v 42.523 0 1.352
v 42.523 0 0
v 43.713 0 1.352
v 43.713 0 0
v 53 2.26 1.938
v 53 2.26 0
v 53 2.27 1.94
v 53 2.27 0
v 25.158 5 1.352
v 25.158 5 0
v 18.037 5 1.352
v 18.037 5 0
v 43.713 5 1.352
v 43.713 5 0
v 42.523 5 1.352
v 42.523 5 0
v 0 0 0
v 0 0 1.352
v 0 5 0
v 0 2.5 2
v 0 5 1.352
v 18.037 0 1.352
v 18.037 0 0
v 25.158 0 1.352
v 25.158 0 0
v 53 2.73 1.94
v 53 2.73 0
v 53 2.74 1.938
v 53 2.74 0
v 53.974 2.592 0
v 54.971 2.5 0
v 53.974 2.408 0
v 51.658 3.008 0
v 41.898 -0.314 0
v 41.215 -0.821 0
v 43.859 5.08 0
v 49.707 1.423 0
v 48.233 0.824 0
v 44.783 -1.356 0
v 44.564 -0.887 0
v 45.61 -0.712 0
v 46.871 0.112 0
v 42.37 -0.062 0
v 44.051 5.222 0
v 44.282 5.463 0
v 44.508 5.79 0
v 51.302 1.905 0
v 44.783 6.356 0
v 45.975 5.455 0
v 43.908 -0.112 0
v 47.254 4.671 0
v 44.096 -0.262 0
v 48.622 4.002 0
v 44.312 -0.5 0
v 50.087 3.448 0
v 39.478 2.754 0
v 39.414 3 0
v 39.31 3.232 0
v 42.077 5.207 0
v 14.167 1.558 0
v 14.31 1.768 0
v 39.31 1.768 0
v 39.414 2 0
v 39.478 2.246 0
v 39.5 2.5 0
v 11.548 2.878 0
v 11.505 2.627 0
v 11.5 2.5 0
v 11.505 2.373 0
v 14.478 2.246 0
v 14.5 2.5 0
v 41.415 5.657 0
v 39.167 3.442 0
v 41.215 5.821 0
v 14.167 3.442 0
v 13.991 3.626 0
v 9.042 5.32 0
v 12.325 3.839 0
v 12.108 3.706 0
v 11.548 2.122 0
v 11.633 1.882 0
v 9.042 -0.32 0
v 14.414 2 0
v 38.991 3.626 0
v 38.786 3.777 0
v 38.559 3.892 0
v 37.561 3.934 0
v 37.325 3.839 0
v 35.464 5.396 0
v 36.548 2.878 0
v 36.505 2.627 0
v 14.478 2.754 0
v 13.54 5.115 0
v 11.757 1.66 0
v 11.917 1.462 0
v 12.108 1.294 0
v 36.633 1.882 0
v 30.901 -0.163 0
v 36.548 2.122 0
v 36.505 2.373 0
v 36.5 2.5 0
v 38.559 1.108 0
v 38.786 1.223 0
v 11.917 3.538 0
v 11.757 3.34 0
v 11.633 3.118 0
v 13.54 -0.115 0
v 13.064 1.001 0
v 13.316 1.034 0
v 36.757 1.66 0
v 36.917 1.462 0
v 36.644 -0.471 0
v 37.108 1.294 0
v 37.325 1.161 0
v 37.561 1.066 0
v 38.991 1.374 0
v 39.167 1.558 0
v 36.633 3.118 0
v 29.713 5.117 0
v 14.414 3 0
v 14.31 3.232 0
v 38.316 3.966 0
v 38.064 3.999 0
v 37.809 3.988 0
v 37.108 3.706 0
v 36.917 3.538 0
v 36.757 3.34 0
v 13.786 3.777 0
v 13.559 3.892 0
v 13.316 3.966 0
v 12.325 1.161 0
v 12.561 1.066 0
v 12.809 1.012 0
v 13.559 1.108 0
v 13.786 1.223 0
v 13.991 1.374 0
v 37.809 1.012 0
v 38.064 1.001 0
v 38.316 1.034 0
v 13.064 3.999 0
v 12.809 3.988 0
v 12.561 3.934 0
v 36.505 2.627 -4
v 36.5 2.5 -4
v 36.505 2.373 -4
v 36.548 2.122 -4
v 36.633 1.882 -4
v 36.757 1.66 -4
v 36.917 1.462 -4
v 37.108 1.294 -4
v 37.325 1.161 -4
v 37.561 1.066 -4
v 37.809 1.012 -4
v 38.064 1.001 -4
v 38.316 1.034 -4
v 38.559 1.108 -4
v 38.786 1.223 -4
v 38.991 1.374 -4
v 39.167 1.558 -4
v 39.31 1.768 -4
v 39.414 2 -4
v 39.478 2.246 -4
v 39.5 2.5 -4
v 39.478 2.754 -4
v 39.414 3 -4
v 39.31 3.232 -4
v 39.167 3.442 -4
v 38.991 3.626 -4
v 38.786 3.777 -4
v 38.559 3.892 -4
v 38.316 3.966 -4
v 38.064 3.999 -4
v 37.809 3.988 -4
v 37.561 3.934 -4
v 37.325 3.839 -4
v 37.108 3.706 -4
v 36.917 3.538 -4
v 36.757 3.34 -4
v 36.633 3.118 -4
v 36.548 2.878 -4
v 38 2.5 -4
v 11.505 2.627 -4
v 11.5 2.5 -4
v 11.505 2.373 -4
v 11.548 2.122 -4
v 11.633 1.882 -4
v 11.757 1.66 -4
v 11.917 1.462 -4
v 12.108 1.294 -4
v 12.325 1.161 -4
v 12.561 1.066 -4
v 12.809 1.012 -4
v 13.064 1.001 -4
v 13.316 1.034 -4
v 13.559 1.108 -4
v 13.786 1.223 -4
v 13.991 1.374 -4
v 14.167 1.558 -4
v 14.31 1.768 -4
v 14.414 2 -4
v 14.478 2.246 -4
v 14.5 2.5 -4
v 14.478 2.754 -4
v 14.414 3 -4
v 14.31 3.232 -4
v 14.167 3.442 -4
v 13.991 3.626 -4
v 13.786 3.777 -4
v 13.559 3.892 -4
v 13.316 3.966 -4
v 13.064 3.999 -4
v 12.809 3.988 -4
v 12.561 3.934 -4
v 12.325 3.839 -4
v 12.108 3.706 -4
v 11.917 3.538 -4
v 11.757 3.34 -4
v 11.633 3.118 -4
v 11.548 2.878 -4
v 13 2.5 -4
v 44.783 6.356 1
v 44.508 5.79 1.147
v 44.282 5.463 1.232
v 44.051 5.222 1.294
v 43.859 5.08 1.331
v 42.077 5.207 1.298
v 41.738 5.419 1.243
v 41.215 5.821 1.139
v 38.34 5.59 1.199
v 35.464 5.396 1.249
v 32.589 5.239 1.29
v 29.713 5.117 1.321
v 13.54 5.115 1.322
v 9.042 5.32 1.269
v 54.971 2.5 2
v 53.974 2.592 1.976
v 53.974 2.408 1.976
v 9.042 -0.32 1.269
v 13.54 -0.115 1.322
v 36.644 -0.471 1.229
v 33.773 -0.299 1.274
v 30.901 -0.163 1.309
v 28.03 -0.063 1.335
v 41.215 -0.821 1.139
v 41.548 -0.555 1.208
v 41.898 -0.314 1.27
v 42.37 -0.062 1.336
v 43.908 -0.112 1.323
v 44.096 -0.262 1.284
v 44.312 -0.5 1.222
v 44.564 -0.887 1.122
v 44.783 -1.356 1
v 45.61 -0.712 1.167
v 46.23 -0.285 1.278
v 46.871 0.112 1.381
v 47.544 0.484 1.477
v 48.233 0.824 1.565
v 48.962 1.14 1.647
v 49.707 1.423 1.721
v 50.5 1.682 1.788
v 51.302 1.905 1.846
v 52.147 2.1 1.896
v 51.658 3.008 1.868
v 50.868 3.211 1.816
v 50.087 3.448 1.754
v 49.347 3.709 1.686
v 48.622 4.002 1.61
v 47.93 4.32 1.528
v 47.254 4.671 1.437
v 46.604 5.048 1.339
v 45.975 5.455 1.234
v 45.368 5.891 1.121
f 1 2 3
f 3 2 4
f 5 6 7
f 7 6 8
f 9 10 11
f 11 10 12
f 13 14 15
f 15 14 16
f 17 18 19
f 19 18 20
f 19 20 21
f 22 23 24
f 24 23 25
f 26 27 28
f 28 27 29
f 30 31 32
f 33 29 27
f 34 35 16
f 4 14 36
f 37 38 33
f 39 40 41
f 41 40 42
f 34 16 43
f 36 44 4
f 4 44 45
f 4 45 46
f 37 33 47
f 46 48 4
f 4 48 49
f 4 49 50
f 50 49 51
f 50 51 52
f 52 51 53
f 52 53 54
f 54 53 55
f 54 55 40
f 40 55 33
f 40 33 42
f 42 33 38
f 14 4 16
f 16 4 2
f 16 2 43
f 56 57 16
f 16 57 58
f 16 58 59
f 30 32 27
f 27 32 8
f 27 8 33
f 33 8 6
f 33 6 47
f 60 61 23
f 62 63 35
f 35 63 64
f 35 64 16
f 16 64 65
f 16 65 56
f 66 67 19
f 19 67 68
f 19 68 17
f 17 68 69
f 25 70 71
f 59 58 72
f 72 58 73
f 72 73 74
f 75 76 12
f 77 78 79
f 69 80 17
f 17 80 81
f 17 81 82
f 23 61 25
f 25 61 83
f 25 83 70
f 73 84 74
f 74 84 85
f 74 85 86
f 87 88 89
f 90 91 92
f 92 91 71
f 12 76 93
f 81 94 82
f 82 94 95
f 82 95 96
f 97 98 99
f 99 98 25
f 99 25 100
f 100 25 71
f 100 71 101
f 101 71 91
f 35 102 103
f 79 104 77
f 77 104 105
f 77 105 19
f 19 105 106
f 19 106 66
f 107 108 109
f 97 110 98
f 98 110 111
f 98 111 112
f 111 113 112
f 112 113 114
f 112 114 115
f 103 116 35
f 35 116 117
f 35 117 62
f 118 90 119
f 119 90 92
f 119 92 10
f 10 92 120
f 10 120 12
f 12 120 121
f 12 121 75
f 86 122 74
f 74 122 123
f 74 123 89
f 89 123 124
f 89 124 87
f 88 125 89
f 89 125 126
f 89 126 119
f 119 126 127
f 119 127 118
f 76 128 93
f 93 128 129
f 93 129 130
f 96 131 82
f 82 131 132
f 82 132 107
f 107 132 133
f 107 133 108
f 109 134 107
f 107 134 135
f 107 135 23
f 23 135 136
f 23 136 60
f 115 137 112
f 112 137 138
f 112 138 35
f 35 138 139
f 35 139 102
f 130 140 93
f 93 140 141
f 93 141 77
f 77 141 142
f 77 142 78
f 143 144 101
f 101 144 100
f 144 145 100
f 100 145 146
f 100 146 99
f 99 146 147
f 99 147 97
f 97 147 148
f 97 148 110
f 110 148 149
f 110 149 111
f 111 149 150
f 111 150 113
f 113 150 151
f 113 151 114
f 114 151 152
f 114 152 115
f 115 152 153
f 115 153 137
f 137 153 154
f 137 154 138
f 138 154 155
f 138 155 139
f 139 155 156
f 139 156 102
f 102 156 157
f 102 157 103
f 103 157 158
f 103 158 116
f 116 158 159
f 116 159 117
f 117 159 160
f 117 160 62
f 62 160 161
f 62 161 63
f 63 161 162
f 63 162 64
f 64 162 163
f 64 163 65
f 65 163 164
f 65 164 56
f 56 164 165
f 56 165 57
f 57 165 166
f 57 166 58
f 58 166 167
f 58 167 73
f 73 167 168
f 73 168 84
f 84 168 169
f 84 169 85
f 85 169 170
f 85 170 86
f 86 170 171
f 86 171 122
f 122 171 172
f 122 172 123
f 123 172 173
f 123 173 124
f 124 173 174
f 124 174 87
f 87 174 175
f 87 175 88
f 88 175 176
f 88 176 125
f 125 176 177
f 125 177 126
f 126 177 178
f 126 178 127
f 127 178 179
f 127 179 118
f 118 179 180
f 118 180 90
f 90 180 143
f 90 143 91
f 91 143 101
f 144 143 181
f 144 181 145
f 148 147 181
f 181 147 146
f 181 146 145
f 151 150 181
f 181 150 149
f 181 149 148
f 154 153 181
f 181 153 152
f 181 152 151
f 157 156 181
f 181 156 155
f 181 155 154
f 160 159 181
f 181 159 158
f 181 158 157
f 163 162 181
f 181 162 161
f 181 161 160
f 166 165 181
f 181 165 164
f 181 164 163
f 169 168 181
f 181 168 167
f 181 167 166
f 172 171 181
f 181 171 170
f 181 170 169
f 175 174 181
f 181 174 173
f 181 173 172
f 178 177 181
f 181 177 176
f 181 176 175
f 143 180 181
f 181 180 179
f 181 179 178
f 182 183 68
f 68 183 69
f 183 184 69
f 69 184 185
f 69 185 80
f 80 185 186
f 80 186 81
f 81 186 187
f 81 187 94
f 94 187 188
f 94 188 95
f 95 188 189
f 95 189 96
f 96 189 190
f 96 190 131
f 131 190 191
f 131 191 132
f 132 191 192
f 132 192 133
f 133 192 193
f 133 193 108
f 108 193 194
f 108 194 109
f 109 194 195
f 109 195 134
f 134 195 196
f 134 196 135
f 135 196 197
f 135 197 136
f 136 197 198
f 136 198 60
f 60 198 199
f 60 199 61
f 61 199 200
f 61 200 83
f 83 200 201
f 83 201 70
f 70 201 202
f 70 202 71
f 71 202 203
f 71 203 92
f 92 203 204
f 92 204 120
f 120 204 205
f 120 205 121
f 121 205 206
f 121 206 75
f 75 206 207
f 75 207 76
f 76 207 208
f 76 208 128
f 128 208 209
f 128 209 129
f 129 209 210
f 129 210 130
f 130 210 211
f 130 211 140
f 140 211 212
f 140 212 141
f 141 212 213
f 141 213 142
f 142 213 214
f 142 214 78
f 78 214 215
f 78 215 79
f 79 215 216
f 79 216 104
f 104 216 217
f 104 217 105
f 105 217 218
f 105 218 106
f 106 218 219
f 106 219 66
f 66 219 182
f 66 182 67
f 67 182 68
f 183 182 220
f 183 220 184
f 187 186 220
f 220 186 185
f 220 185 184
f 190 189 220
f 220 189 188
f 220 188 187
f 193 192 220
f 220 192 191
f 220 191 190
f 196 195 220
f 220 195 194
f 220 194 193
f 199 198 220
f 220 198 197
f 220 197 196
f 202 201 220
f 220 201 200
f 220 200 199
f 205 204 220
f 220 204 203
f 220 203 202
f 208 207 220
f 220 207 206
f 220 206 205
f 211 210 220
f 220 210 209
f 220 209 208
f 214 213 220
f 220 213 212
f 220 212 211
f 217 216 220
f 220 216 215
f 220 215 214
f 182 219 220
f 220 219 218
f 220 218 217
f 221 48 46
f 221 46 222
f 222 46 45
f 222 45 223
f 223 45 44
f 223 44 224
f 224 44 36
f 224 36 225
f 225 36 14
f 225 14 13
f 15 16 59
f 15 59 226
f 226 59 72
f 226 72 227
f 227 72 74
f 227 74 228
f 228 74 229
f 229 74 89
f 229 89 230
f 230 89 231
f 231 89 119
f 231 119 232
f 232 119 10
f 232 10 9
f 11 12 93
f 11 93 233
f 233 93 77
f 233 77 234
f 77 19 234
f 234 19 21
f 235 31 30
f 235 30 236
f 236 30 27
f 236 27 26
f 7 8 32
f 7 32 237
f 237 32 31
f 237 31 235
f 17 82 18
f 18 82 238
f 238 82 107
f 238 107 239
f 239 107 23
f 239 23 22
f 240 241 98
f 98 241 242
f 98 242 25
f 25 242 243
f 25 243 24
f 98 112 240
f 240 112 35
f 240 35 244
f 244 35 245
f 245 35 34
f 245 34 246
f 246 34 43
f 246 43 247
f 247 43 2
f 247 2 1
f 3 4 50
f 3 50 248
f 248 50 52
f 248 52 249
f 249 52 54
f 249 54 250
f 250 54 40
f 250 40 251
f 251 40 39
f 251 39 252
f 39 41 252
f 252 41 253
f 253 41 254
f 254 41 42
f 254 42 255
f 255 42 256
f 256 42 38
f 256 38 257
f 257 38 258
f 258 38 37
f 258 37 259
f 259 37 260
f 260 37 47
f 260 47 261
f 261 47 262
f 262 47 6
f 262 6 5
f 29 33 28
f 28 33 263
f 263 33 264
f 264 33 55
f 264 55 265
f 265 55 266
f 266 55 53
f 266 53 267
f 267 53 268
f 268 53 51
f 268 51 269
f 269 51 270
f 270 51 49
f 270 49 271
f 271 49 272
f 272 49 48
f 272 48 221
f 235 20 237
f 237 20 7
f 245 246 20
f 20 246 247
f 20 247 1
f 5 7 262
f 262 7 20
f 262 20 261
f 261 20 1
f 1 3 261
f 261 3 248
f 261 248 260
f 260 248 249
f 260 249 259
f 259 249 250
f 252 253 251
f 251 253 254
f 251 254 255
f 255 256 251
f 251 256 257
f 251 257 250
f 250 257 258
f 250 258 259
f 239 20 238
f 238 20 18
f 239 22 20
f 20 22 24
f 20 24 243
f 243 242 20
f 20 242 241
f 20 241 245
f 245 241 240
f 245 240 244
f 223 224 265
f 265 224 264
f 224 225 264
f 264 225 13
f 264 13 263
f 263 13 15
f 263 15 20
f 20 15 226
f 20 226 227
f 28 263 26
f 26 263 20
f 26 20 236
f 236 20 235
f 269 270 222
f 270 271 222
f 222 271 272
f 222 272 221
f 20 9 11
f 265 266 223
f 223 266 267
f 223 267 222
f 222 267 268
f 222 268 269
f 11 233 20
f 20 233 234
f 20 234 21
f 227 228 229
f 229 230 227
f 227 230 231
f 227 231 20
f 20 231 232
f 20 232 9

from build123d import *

# Parameters (mm, degrees)
SKIZZE1_W                       = 53
SKIZZE1_H                       = 5
AUFSATZ_LINEAR_AUSTRAGEN1_DEPTH = 2
SKIZZE2_R                       = 1.5
AUFSATZ_LINEAR_AUSTRAGEN2_DEPTH = 4
AUFSATZ_LINEAR_AUSTRAGEN3_DEPTH = 2
SCHNITT_LINEAR_AUSTRAGEN1_DEPTH = 2
SCHNITT_LINEAR_AUSTRAGEN2_DEPTH = 62


with BuildPart() as part:
    # Skizze1 → Aufsatz-Linear austragen1 (new body)
    with BuildSketch(Plane.XY):
        with Locations((26.5, 2.5)):
            Rectangle(SKIZZE1_W, SKIZZE1_H)
    extrude(amount=AUFSATZ_LINEAR_AUSTRAGEN1_DEPTH)

    # Skizze2 → Aufsatz-Linear austragen2 (add)
    with BuildSketch(Plane(origin=(0, 0, 0), x_dir=(-1, 0, 0), z_dir=(0, 0, -1))):
        with Locations((-38, 2.5)):
            Circle(SKIZZE2_R)
        with Locations((-13, 2.5)):
            Circle(SKIZZE2_R)
    extrude(amount=AUFSATZ_LINEAR_AUSTRAGEN2_DEPTH)

    # Skizze3 → Aufsatz-Linear austragen3 (add)
    with BuildSketch(Plane.XY.offset(2)):
        with BuildLine():
            Line((9.041652249, 5.319771497), (0, 5))
            Line((0, 5), (0, 0))
            Line((0, 0), (9.041652249, -0.319771497))
            add(Edge.make_bspline(
                [(41.214812909, -0.82086692), (25.128158575, 0.571238551), (9.041652249, -0.319771497)],
                knots=[0, 0, 0, 1, 1, 1], degree=2))
            add(Edge.make_bspline(
                [(44.782995012, -1.356094236), (43.718693427, 1.301548712), (41.214812909, -0.82086692)],
                knots=[0, 0, 0, 1, 1, 1], degree=2))
            add(Edge.make_bspline(
                [(54.97075372, 2.5), (49.140580599, 2.096719237), (44.782995012, -1.356094236)],
                knots=[0, 0, 0, 1, 1, 1], degree=2))
            add(Edge.make_bspline(
                [(54.97075372, 2.5), (49.140580599, 2.903280763), (44.782995012, 6.356094236)],
                knots=[0, 0, 0, 1, 1, 1], degree=2))
            add(Edge.make_bspline(
                [(44.782995012, 6.356094236), (43.718693427, 3.698451288), (41.214812909, 5.82086692)],
                knots=[0, 0, 0, 1, 1, 1], degree=2))
            add(Edge.make_bspline(
                [(41.214812909, 5.82086692), (25.128158575, 4.428761449), (9.041652249, 5.319771497)],
                knots=[0, 0, 0, 1, 1, 1], degree=2))
        make_face()
    extrude(amount=-AUFSATZ_LINEAR_AUSTRAGEN3_DEPTH)

    # Skizze4 → Schnitt-Linear austragen1 (cut)
    with BuildSketch(Plane.XY.offset(2)):
        with BuildLine():
            Line((44.782995012, -1.356094236), (55.574942563, -1.356094236))
            Line((55.574942563, -1.356094236), (55.574942563, 6.356094236))
            Line((55.574942563, 6.356094236), (44.782995012, 6.356094236))
            add(Edge.make_bspline(
                [(44.782995012, 6.356094236), (48.809965084, 2.992691468), (54.97075372, 2.5)],
                knots=[0, 0, 0, 1, 1, 1], degree=2))
            add(Edge.make_bspline(
                [(44.782995012, -1.356094236), (48.809965084, 2.007308532), (54.97075372, 2.5)],
                knots=[0, 0, 0, 1, 1, 1], degree=2))
        make_face()
    extrude(amount=-SCHNITT_LINEAR_AUSTRAGEN1_DEPTH, mode=Mode.SUBTRACT)

    # Skizze5 → Schnitt-Linear austragen2 (cut)
    with BuildSketch(Plane.ZY):
        Polygon((1, 6.356094236), (2, 2.5), (1, -1.356094236), (2.237806681, -1.356094236), (2.319741109, 6.356094236), align=None)
    extrude(amount=-SCHNITT_LINEAR_AUSTRAGEN2_DEPTH, mode=Mode.SUBTRACT)


solid = part.part
